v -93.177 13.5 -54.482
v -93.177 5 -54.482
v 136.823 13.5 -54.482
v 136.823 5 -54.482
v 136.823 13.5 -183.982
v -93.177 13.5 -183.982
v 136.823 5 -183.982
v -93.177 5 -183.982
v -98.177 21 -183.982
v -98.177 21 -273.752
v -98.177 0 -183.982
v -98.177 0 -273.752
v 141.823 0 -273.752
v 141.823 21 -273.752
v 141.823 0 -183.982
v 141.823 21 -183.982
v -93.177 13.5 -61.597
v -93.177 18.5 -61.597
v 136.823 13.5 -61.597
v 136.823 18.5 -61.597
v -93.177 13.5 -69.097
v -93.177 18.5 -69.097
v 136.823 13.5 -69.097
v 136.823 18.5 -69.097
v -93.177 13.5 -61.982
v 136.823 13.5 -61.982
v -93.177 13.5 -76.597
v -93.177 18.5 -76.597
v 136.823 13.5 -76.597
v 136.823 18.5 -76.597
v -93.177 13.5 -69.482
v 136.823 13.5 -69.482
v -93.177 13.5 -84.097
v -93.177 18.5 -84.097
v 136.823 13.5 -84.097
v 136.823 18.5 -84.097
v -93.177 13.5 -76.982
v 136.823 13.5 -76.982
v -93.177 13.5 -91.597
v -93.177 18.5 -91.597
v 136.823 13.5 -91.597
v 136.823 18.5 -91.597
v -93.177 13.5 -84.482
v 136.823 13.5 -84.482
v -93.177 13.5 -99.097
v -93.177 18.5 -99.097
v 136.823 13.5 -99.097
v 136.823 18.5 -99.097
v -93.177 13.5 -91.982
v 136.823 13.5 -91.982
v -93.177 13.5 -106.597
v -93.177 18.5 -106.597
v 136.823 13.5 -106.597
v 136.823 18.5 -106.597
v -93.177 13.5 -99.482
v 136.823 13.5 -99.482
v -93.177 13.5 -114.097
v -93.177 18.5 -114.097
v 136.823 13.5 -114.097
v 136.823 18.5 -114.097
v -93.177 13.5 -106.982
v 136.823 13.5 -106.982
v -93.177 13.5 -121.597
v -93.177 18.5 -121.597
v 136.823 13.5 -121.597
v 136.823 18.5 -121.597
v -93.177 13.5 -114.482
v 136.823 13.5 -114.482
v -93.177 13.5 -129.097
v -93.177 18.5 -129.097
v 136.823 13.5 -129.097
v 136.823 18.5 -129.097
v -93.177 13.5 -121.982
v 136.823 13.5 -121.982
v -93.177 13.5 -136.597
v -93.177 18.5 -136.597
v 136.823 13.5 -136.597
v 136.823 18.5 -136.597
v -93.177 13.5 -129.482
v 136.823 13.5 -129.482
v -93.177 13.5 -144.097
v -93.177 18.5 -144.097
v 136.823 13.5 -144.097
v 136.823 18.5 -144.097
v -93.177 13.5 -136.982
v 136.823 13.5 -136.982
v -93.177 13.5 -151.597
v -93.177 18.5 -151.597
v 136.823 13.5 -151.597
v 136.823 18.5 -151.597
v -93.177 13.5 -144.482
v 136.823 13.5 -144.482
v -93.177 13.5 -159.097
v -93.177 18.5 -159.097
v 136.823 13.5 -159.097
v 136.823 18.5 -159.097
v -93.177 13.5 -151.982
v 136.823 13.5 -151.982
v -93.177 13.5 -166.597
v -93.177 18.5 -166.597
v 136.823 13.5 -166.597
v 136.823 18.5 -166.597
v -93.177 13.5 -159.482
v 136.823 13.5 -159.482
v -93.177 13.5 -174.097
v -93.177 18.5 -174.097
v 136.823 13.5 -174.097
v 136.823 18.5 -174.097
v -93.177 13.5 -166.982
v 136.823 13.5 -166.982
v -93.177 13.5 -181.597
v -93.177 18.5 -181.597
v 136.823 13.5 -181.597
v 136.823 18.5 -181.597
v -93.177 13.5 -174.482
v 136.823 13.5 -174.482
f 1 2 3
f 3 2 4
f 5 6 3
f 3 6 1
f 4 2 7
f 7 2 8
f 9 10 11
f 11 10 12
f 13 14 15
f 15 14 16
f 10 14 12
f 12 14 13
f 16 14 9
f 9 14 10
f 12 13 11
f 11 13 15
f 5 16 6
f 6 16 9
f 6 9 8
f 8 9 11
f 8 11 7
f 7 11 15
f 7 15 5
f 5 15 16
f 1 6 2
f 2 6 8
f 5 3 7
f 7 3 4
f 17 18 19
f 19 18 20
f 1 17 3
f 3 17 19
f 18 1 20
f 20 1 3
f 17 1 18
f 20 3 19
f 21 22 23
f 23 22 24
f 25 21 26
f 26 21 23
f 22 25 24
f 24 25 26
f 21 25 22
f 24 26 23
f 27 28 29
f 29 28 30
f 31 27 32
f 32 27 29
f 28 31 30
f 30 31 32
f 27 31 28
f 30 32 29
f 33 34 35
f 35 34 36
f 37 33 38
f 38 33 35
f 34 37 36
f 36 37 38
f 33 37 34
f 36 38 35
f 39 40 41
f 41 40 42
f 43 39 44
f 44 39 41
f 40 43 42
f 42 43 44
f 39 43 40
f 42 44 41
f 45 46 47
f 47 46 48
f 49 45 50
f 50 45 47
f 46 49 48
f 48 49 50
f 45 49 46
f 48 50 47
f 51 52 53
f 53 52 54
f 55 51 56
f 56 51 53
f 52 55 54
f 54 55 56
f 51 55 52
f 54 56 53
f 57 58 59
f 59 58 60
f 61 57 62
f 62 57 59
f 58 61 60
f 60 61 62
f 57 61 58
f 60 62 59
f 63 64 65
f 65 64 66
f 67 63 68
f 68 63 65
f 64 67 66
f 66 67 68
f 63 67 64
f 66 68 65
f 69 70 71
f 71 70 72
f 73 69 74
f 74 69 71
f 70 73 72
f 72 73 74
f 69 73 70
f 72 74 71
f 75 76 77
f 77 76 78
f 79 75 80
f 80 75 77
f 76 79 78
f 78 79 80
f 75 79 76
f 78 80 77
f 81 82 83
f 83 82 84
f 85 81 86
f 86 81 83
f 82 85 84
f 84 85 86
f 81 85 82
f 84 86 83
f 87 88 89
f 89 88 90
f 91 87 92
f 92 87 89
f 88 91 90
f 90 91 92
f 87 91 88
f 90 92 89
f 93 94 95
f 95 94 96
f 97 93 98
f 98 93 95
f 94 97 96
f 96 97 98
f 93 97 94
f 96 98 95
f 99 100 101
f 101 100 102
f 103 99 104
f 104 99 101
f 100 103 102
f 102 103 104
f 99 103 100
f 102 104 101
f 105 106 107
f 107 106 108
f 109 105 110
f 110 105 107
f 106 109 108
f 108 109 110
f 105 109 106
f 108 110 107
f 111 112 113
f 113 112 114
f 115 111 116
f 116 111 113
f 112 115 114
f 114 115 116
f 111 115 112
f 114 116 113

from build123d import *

# Parameters (mm, degrees)
SKETCH1_W              = 240
SKETCH1_H              = 351.15
BOSS_EXTRUDE3_DEPTH    = 21
SKETCH5_W              = 248.975913499
SKETCH5_H              = 113.170869772
CUT_EXTRUDE2_DEPTH     = 513
SKETCH4_W              = 240
SKETCH4_H              = 129.5
CUT_EXTRUDE3_DEPTH     = 7.5
SKETCH6_W              = 240
SKETCH6_H              = 129.5
CUT_EXTRUDE4_DEPTH     = 5
SKETCH8_W              = 129.5
SKETCH8_H              = 8.5
CUT_EXTRUDE6_DEPTH     = 5
SKETCH7_W              = 129.5
SKETCH7_H              = 8.5
CUT_EXTRUDE7_DEPTH     = 5
BOSS_EXTRUDE4_DEPTH    = 230
BOSS_EXTRUDE4_2_DEPTH  = 230
BOSS_EXTRUDE4_3_DEPTH  = 230
BOSS_EXTRUDE4_4_DEPTH  = 230
BOSS_EXTRUDE4_5_DEPTH  = 230
BOSS_EXTRUDE4_6_DEPTH  = 230
BOSS_EXTRUDE4_7_DEPTH  = 230
BOSS_EXTRUDE4_8_DEPTH  = 230
BOSS_EXTRUDE4_9_DEPTH  = 230
BOSS_EXTRUDE4_10_DEPTH = 230
BOSS_EXTRUDE4_11_DEPTH = 230
BOSS_EXTRUDE4_12_DEPTH = 230
BOSS_EXTRUDE4_13_DEPTH = 230
BOSS_EXTRUDE4_14_DEPTH = 230
BOSS_EXTRUDE4_15_DEPTH = 230
BOSS_EXTRUDE4_16_DEPTH = 230
BOSS_EXTRUDE4_17_DEPTH = 230


with BuildPart() as part:
    # Sketch1 → Boss-Extrude3 (new body)
    with BuildSketch(Plane(origin=(0, 0, 0), x_dir=(1, 0, 0), z_dir=(0, 1, 0))):
        with Locations((21.823446746, 98.176553254)):
            Rectangle(SKETCH1_W, SKETCH1_H)
    extrude(amount=BOSS_EXTRUDE3_DEPTH)

    # Sketch5 → Cut-Extrude2 (cut)
    with BuildSketch(Plane(origin=(0, 0, -54.481553254), x_dir=(-1, 0, 0), z_dir=(0, 0, -1))):
        with Locations((-20.8478358, 4.110963623)):
            Rectangle(SKETCH5_W, SKETCH5_H)
    extrude(amount=-CUT_EXTRUDE2_DEPTH, mode=Mode.SUBTRACT)

    # Sketch4 → Cut-Extrude3 (cut)
    with BuildSketch(Plane(origin=(0, 21, 0), x_dir=(1, 0, 0), z_dir=(0, 1, 0))):
        with Locations((21.823446746, 119.231553254)):
            Rectangle(SKETCH4_W, SKETCH4_H)
    extrude(amount=-CUT_EXTRUDE3_DEPTH, mode=Mode.SUBTRACT)

    # Sketch6 → Cut-Extrude4 (cut)
    with BuildSketch(Plane.XZ):
        with Locations((21.823446746, -119.231553254)):
            Rectangle(SKETCH6_W, SKETCH6_H)
    extrude(amount=-CUT_EXTRUDE4_DEPTH, mode=Mode.SUBTRACT)

    # Sketch8 → Cut-Extrude6 (cut)
    with BuildSketch(Plane.ZY.offset(98.176553254)):
        with Locations((-119.231553254, 9.25)):
            Rectangle(SKETCH8_W, SKETCH8_H)
    extrude(amount=-CUT_EXTRUDE6_DEPTH, mode=Mode.SUBTRACT)

    # Sketch7 → Cut-Extrude7 (cut)
    with BuildSketch(Plane(origin=(141.823446746, 0, 0), x_dir=(0, 0, -1), z_dir=(1, 0, 0))):
        with Locations((119.231553254, 9.25)):
            Rectangle(SKETCH7_W, SKETCH7_H)
    extrude(amount=-CUT_EXTRUDE7_DEPTH, mode=Mode.SUBTRACT)


with BuildPart() as body_2:
    # Sketch14 → Boss-Extrude4 (new body)
    with BuildSketch(Plane(origin=(136.823446746, 0, 0), x_dir=(0, 0, -1), z_dir=(1, 0, 0))):
        Polygon((61.596858709, 18.5), (54.481553254, 13.5), (61.596858709, 13.5), align=None)
    extrude(amount=-BOSS_EXTRUDE4_DEPTH)


with BuildPart() as body_3:
    # Sketch14 → Boss-Extrude4 2 (new body)
    with BuildSketch(Plane(origin=(136.823446746, 0, 0), x_dir=(0, 0, -1), z_dir=(1, 0, 0))):
        Polygon((69.096858709, 18.5), (61.981553254, 13.5), (69.096858709, 13.5), align=None)
    extrude(amount=-BOSS_EXTRUDE4_2_DEPTH)


with BuildPart() as body_4:
    # Sketch14 → Boss-Extrude4 3 (new body)
    with BuildSketch(Plane(origin=(136.823446746, 0, 0), x_dir=(0, 0, -1), z_dir=(1, 0, 0))):
        Polygon((76.596858709, 18.5), (69.481553254, 13.5), (76.596858709, 13.5), align=None)
    extrude(amount=-BOSS_EXTRUDE4_3_DEPTH)


with BuildPart() as body_5:
    # Sketch14 → Boss-Extrude4 4 (new body)
    with BuildSketch(Plane(origin=(136.823446746, 0, 0), x_dir=(0, 0, -1), z_dir=(1, 0, 0))):
        Polygon((84.096858709, 18.5), (76.981553254, 13.5), (84.096858709, 13.5), align=None)
    extrude(amount=-BOSS_EXTRUDE4_4_DEPTH)


with BuildPart() as body_6:
    # Sketch14 → Boss-Extrude4 5 (new body)
    with BuildSketch(Plane(origin=(136.823446746, 0, 0), x_dir=(0, 0, -1), z_dir=(1, 0, 0))):
        Polygon((91.596858709, 18.5), (84.481553254, 13.5), (91.596858709, 13.5), align=None)
    extrude(amount=-BOSS_EXTRUDE4_5_DEPTH)


with BuildPart() as body_7:
    # Sketch14 → Boss-Extrude4 6 (new body)
    with BuildSketch(Plane(origin=(136.823446746, 0, 0), x_dir=(0, 0, -1), z_dir=(1, 0, 0))):
        Polygon((99.096858709, 18.5), (91.981553254, 13.5), (99.096858709, 13.5), align=None)
    extrude(amount=-BOSS_EXTRUDE4_6_DEPTH)


with BuildPart() as body_8:
    # Sketch14 → Boss-Extrude4 7 (new body)
    with BuildSketch(Plane(origin=(136.823446746, 0, 0), x_dir=(0, 0, -1), z_dir=(1, 0, 0))):
        Polygon((106.596858709, 18.5), (99.481553254, 13.5), (106.596858709, 13.5), align=None)
    extrude(amount=-BOSS_EXTRUDE4_7_DEPTH)


with BuildPart() as body_9:
    # Sketch14 → Boss-Extrude4 8 (new body)
    with BuildSketch(Plane(origin=(136.823446746, 0, 0), x_dir=(0, 0, -1), z_dir=(1, 0, 0))):
        Polygon((114.096858709, 18.5), (106.981553254, 13.5), (114.096858709, 13.5), align=None)
    extrude(amount=-BOSS_EXTRUDE4_8_DEPTH)


with BuildPart() as body_10:
    # Sketch14 → Boss-Extrude4 9 (new body)
    with BuildSketch(Plane(origin=(136.823446746, 0, 0), x_dir=(0, 0, -1), z_dir=(1, 0, 0))):
        Polygon((121.596858709, 18.5), (114.481553254, 13.5), (121.596858709, 13.5), align=None)
    extrude(amount=-BOSS_EXTRUDE4_9_DEPTH)


with BuildPart() as body_11:
    # Sketch14 → Boss-Extrude4 10 (new body)
    with BuildSketch(Plane(origin=(136.823446746, 0, 0), x_dir=(0, 0, -1), z_dir=(1, 0, 0))):
        Polygon((129.096858709, 18.5), (121.981553254, 13.5), (129.096858709, 13.5), align=None)
    extrude(amount=-BOSS_EXTRUDE4_10_DEPTH)


with BuildPart() as body_12:
    # Sketch14 → Boss-Extrude4 11 (new body)
    with BuildSketch(Plane(origin=(136.823446746, 0, 0), x_dir=(0, 0, -1), z_dir=(1, 0, 0))):
        Polygon((136.596858709, 18.5), (129.481553254, 13.5), (136.596858709, 13.5), align=None)
    extrude(amount=-BOSS_EXTRUDE4_11_DEPTH)


with BuildPart() as body_13:
    # Sketch14 → Boss-Extrude4 12 (new body)
    with BuildSketch(Plane(origin=(136.823446746, 0, 0), x_dir=(0, 0, -1), z_dir=(1, 0, 0))):
        Polygon((144.096858709, 18.5), (136.981553254, 13.5), (144.096858709, 13.5), align=None)
    extrude(amount=-BOSS_EXTRUDE4_12_DEPTH)


with BuildPart() as body_14:
    # Sketch14 → Boss-Extrude4 13 (new body)
    with BuildSketch(Plane(origin=(136.823446746, 0, 0), x_dir=(0, 0, -1), z_dir=(1, 0, 0))):
        Polygon((151.596858709, 18.5), (144.481553254, 13.5), (151.596858709, 13.5), align=None)
    extrude(amount=-BOSS_EXTRUDE4_13_DEPTH)


with BuildPart() as body_15:
    # Sketch14 → Boss-Extrude4 14 (new body)
    with BuildSketch(Plane(origin=(136.823446746, 0, 0), x_dir=(0, 0, -1), z_dir=(1, 0, 0))):
        Polygon((159.096858709, 18.5), (151.981553254, 13.5), (159.096858709, 13.5), align=None)
    extrude(amount=-BOSS_EXTRUDE4_14_DEPTH)


with BuildPart() as body_16:
    # Sketch14 → Boss-Extrude4 15 (new body)
    with BuildSketch(Plane(origin=(136.823446746, 0, 0), x_dir=(0, 0, -1), z_dir=(1, 0, 0))):
        Polygon((166.596858709, 18.5), (159.481553254, 13.5), (166.596858709, 13.5), align=None)
    extrude(amount=-BOSS_EXTRUDE4_15_DEPTH)


with BuildPart() as body_17:
    # Sketch14 → Boss-Extrude4 16 (new body)
    with BuildSketch(Plane(origin=(136.823446746, 0, 0), x_dir=(0, 0, -1), z_dir=(1, 0, 0))):
        Polygon((174.096858709, 18.5), (166.981553254, 13.5), (174.096858709, 13.5), align=None)
    extrude(amount=-BOSS_EXTRUDE4_16_DEPTH)


with BuildPart() as body_18:
    # Sketch14 → Boss-Extrude4 17 (new body)
    with BuildSketch(Plane(origin=(136.823446746, 0, 0), x_dir=(0, 0, -1), z_dir=(1, 0, 0))):
        Polygon((181.596858709, 18.5), (174.481553254, 13.5), (181.596858709, 13.5), align=None)
    extrude(amount=-BOSS_EXTRUDE4_17_DEPTH)


solid = Compound([part.part, body_2.part, body_3.part, body_4.part, body_5.part, body_6.part, body_7.part, body_8.part, body_9.part, body_10.part, body_11.part, body_12.part, body_13.part, body_14.part, body_15.part, body_16.part, body_17.part, body_18.part])
